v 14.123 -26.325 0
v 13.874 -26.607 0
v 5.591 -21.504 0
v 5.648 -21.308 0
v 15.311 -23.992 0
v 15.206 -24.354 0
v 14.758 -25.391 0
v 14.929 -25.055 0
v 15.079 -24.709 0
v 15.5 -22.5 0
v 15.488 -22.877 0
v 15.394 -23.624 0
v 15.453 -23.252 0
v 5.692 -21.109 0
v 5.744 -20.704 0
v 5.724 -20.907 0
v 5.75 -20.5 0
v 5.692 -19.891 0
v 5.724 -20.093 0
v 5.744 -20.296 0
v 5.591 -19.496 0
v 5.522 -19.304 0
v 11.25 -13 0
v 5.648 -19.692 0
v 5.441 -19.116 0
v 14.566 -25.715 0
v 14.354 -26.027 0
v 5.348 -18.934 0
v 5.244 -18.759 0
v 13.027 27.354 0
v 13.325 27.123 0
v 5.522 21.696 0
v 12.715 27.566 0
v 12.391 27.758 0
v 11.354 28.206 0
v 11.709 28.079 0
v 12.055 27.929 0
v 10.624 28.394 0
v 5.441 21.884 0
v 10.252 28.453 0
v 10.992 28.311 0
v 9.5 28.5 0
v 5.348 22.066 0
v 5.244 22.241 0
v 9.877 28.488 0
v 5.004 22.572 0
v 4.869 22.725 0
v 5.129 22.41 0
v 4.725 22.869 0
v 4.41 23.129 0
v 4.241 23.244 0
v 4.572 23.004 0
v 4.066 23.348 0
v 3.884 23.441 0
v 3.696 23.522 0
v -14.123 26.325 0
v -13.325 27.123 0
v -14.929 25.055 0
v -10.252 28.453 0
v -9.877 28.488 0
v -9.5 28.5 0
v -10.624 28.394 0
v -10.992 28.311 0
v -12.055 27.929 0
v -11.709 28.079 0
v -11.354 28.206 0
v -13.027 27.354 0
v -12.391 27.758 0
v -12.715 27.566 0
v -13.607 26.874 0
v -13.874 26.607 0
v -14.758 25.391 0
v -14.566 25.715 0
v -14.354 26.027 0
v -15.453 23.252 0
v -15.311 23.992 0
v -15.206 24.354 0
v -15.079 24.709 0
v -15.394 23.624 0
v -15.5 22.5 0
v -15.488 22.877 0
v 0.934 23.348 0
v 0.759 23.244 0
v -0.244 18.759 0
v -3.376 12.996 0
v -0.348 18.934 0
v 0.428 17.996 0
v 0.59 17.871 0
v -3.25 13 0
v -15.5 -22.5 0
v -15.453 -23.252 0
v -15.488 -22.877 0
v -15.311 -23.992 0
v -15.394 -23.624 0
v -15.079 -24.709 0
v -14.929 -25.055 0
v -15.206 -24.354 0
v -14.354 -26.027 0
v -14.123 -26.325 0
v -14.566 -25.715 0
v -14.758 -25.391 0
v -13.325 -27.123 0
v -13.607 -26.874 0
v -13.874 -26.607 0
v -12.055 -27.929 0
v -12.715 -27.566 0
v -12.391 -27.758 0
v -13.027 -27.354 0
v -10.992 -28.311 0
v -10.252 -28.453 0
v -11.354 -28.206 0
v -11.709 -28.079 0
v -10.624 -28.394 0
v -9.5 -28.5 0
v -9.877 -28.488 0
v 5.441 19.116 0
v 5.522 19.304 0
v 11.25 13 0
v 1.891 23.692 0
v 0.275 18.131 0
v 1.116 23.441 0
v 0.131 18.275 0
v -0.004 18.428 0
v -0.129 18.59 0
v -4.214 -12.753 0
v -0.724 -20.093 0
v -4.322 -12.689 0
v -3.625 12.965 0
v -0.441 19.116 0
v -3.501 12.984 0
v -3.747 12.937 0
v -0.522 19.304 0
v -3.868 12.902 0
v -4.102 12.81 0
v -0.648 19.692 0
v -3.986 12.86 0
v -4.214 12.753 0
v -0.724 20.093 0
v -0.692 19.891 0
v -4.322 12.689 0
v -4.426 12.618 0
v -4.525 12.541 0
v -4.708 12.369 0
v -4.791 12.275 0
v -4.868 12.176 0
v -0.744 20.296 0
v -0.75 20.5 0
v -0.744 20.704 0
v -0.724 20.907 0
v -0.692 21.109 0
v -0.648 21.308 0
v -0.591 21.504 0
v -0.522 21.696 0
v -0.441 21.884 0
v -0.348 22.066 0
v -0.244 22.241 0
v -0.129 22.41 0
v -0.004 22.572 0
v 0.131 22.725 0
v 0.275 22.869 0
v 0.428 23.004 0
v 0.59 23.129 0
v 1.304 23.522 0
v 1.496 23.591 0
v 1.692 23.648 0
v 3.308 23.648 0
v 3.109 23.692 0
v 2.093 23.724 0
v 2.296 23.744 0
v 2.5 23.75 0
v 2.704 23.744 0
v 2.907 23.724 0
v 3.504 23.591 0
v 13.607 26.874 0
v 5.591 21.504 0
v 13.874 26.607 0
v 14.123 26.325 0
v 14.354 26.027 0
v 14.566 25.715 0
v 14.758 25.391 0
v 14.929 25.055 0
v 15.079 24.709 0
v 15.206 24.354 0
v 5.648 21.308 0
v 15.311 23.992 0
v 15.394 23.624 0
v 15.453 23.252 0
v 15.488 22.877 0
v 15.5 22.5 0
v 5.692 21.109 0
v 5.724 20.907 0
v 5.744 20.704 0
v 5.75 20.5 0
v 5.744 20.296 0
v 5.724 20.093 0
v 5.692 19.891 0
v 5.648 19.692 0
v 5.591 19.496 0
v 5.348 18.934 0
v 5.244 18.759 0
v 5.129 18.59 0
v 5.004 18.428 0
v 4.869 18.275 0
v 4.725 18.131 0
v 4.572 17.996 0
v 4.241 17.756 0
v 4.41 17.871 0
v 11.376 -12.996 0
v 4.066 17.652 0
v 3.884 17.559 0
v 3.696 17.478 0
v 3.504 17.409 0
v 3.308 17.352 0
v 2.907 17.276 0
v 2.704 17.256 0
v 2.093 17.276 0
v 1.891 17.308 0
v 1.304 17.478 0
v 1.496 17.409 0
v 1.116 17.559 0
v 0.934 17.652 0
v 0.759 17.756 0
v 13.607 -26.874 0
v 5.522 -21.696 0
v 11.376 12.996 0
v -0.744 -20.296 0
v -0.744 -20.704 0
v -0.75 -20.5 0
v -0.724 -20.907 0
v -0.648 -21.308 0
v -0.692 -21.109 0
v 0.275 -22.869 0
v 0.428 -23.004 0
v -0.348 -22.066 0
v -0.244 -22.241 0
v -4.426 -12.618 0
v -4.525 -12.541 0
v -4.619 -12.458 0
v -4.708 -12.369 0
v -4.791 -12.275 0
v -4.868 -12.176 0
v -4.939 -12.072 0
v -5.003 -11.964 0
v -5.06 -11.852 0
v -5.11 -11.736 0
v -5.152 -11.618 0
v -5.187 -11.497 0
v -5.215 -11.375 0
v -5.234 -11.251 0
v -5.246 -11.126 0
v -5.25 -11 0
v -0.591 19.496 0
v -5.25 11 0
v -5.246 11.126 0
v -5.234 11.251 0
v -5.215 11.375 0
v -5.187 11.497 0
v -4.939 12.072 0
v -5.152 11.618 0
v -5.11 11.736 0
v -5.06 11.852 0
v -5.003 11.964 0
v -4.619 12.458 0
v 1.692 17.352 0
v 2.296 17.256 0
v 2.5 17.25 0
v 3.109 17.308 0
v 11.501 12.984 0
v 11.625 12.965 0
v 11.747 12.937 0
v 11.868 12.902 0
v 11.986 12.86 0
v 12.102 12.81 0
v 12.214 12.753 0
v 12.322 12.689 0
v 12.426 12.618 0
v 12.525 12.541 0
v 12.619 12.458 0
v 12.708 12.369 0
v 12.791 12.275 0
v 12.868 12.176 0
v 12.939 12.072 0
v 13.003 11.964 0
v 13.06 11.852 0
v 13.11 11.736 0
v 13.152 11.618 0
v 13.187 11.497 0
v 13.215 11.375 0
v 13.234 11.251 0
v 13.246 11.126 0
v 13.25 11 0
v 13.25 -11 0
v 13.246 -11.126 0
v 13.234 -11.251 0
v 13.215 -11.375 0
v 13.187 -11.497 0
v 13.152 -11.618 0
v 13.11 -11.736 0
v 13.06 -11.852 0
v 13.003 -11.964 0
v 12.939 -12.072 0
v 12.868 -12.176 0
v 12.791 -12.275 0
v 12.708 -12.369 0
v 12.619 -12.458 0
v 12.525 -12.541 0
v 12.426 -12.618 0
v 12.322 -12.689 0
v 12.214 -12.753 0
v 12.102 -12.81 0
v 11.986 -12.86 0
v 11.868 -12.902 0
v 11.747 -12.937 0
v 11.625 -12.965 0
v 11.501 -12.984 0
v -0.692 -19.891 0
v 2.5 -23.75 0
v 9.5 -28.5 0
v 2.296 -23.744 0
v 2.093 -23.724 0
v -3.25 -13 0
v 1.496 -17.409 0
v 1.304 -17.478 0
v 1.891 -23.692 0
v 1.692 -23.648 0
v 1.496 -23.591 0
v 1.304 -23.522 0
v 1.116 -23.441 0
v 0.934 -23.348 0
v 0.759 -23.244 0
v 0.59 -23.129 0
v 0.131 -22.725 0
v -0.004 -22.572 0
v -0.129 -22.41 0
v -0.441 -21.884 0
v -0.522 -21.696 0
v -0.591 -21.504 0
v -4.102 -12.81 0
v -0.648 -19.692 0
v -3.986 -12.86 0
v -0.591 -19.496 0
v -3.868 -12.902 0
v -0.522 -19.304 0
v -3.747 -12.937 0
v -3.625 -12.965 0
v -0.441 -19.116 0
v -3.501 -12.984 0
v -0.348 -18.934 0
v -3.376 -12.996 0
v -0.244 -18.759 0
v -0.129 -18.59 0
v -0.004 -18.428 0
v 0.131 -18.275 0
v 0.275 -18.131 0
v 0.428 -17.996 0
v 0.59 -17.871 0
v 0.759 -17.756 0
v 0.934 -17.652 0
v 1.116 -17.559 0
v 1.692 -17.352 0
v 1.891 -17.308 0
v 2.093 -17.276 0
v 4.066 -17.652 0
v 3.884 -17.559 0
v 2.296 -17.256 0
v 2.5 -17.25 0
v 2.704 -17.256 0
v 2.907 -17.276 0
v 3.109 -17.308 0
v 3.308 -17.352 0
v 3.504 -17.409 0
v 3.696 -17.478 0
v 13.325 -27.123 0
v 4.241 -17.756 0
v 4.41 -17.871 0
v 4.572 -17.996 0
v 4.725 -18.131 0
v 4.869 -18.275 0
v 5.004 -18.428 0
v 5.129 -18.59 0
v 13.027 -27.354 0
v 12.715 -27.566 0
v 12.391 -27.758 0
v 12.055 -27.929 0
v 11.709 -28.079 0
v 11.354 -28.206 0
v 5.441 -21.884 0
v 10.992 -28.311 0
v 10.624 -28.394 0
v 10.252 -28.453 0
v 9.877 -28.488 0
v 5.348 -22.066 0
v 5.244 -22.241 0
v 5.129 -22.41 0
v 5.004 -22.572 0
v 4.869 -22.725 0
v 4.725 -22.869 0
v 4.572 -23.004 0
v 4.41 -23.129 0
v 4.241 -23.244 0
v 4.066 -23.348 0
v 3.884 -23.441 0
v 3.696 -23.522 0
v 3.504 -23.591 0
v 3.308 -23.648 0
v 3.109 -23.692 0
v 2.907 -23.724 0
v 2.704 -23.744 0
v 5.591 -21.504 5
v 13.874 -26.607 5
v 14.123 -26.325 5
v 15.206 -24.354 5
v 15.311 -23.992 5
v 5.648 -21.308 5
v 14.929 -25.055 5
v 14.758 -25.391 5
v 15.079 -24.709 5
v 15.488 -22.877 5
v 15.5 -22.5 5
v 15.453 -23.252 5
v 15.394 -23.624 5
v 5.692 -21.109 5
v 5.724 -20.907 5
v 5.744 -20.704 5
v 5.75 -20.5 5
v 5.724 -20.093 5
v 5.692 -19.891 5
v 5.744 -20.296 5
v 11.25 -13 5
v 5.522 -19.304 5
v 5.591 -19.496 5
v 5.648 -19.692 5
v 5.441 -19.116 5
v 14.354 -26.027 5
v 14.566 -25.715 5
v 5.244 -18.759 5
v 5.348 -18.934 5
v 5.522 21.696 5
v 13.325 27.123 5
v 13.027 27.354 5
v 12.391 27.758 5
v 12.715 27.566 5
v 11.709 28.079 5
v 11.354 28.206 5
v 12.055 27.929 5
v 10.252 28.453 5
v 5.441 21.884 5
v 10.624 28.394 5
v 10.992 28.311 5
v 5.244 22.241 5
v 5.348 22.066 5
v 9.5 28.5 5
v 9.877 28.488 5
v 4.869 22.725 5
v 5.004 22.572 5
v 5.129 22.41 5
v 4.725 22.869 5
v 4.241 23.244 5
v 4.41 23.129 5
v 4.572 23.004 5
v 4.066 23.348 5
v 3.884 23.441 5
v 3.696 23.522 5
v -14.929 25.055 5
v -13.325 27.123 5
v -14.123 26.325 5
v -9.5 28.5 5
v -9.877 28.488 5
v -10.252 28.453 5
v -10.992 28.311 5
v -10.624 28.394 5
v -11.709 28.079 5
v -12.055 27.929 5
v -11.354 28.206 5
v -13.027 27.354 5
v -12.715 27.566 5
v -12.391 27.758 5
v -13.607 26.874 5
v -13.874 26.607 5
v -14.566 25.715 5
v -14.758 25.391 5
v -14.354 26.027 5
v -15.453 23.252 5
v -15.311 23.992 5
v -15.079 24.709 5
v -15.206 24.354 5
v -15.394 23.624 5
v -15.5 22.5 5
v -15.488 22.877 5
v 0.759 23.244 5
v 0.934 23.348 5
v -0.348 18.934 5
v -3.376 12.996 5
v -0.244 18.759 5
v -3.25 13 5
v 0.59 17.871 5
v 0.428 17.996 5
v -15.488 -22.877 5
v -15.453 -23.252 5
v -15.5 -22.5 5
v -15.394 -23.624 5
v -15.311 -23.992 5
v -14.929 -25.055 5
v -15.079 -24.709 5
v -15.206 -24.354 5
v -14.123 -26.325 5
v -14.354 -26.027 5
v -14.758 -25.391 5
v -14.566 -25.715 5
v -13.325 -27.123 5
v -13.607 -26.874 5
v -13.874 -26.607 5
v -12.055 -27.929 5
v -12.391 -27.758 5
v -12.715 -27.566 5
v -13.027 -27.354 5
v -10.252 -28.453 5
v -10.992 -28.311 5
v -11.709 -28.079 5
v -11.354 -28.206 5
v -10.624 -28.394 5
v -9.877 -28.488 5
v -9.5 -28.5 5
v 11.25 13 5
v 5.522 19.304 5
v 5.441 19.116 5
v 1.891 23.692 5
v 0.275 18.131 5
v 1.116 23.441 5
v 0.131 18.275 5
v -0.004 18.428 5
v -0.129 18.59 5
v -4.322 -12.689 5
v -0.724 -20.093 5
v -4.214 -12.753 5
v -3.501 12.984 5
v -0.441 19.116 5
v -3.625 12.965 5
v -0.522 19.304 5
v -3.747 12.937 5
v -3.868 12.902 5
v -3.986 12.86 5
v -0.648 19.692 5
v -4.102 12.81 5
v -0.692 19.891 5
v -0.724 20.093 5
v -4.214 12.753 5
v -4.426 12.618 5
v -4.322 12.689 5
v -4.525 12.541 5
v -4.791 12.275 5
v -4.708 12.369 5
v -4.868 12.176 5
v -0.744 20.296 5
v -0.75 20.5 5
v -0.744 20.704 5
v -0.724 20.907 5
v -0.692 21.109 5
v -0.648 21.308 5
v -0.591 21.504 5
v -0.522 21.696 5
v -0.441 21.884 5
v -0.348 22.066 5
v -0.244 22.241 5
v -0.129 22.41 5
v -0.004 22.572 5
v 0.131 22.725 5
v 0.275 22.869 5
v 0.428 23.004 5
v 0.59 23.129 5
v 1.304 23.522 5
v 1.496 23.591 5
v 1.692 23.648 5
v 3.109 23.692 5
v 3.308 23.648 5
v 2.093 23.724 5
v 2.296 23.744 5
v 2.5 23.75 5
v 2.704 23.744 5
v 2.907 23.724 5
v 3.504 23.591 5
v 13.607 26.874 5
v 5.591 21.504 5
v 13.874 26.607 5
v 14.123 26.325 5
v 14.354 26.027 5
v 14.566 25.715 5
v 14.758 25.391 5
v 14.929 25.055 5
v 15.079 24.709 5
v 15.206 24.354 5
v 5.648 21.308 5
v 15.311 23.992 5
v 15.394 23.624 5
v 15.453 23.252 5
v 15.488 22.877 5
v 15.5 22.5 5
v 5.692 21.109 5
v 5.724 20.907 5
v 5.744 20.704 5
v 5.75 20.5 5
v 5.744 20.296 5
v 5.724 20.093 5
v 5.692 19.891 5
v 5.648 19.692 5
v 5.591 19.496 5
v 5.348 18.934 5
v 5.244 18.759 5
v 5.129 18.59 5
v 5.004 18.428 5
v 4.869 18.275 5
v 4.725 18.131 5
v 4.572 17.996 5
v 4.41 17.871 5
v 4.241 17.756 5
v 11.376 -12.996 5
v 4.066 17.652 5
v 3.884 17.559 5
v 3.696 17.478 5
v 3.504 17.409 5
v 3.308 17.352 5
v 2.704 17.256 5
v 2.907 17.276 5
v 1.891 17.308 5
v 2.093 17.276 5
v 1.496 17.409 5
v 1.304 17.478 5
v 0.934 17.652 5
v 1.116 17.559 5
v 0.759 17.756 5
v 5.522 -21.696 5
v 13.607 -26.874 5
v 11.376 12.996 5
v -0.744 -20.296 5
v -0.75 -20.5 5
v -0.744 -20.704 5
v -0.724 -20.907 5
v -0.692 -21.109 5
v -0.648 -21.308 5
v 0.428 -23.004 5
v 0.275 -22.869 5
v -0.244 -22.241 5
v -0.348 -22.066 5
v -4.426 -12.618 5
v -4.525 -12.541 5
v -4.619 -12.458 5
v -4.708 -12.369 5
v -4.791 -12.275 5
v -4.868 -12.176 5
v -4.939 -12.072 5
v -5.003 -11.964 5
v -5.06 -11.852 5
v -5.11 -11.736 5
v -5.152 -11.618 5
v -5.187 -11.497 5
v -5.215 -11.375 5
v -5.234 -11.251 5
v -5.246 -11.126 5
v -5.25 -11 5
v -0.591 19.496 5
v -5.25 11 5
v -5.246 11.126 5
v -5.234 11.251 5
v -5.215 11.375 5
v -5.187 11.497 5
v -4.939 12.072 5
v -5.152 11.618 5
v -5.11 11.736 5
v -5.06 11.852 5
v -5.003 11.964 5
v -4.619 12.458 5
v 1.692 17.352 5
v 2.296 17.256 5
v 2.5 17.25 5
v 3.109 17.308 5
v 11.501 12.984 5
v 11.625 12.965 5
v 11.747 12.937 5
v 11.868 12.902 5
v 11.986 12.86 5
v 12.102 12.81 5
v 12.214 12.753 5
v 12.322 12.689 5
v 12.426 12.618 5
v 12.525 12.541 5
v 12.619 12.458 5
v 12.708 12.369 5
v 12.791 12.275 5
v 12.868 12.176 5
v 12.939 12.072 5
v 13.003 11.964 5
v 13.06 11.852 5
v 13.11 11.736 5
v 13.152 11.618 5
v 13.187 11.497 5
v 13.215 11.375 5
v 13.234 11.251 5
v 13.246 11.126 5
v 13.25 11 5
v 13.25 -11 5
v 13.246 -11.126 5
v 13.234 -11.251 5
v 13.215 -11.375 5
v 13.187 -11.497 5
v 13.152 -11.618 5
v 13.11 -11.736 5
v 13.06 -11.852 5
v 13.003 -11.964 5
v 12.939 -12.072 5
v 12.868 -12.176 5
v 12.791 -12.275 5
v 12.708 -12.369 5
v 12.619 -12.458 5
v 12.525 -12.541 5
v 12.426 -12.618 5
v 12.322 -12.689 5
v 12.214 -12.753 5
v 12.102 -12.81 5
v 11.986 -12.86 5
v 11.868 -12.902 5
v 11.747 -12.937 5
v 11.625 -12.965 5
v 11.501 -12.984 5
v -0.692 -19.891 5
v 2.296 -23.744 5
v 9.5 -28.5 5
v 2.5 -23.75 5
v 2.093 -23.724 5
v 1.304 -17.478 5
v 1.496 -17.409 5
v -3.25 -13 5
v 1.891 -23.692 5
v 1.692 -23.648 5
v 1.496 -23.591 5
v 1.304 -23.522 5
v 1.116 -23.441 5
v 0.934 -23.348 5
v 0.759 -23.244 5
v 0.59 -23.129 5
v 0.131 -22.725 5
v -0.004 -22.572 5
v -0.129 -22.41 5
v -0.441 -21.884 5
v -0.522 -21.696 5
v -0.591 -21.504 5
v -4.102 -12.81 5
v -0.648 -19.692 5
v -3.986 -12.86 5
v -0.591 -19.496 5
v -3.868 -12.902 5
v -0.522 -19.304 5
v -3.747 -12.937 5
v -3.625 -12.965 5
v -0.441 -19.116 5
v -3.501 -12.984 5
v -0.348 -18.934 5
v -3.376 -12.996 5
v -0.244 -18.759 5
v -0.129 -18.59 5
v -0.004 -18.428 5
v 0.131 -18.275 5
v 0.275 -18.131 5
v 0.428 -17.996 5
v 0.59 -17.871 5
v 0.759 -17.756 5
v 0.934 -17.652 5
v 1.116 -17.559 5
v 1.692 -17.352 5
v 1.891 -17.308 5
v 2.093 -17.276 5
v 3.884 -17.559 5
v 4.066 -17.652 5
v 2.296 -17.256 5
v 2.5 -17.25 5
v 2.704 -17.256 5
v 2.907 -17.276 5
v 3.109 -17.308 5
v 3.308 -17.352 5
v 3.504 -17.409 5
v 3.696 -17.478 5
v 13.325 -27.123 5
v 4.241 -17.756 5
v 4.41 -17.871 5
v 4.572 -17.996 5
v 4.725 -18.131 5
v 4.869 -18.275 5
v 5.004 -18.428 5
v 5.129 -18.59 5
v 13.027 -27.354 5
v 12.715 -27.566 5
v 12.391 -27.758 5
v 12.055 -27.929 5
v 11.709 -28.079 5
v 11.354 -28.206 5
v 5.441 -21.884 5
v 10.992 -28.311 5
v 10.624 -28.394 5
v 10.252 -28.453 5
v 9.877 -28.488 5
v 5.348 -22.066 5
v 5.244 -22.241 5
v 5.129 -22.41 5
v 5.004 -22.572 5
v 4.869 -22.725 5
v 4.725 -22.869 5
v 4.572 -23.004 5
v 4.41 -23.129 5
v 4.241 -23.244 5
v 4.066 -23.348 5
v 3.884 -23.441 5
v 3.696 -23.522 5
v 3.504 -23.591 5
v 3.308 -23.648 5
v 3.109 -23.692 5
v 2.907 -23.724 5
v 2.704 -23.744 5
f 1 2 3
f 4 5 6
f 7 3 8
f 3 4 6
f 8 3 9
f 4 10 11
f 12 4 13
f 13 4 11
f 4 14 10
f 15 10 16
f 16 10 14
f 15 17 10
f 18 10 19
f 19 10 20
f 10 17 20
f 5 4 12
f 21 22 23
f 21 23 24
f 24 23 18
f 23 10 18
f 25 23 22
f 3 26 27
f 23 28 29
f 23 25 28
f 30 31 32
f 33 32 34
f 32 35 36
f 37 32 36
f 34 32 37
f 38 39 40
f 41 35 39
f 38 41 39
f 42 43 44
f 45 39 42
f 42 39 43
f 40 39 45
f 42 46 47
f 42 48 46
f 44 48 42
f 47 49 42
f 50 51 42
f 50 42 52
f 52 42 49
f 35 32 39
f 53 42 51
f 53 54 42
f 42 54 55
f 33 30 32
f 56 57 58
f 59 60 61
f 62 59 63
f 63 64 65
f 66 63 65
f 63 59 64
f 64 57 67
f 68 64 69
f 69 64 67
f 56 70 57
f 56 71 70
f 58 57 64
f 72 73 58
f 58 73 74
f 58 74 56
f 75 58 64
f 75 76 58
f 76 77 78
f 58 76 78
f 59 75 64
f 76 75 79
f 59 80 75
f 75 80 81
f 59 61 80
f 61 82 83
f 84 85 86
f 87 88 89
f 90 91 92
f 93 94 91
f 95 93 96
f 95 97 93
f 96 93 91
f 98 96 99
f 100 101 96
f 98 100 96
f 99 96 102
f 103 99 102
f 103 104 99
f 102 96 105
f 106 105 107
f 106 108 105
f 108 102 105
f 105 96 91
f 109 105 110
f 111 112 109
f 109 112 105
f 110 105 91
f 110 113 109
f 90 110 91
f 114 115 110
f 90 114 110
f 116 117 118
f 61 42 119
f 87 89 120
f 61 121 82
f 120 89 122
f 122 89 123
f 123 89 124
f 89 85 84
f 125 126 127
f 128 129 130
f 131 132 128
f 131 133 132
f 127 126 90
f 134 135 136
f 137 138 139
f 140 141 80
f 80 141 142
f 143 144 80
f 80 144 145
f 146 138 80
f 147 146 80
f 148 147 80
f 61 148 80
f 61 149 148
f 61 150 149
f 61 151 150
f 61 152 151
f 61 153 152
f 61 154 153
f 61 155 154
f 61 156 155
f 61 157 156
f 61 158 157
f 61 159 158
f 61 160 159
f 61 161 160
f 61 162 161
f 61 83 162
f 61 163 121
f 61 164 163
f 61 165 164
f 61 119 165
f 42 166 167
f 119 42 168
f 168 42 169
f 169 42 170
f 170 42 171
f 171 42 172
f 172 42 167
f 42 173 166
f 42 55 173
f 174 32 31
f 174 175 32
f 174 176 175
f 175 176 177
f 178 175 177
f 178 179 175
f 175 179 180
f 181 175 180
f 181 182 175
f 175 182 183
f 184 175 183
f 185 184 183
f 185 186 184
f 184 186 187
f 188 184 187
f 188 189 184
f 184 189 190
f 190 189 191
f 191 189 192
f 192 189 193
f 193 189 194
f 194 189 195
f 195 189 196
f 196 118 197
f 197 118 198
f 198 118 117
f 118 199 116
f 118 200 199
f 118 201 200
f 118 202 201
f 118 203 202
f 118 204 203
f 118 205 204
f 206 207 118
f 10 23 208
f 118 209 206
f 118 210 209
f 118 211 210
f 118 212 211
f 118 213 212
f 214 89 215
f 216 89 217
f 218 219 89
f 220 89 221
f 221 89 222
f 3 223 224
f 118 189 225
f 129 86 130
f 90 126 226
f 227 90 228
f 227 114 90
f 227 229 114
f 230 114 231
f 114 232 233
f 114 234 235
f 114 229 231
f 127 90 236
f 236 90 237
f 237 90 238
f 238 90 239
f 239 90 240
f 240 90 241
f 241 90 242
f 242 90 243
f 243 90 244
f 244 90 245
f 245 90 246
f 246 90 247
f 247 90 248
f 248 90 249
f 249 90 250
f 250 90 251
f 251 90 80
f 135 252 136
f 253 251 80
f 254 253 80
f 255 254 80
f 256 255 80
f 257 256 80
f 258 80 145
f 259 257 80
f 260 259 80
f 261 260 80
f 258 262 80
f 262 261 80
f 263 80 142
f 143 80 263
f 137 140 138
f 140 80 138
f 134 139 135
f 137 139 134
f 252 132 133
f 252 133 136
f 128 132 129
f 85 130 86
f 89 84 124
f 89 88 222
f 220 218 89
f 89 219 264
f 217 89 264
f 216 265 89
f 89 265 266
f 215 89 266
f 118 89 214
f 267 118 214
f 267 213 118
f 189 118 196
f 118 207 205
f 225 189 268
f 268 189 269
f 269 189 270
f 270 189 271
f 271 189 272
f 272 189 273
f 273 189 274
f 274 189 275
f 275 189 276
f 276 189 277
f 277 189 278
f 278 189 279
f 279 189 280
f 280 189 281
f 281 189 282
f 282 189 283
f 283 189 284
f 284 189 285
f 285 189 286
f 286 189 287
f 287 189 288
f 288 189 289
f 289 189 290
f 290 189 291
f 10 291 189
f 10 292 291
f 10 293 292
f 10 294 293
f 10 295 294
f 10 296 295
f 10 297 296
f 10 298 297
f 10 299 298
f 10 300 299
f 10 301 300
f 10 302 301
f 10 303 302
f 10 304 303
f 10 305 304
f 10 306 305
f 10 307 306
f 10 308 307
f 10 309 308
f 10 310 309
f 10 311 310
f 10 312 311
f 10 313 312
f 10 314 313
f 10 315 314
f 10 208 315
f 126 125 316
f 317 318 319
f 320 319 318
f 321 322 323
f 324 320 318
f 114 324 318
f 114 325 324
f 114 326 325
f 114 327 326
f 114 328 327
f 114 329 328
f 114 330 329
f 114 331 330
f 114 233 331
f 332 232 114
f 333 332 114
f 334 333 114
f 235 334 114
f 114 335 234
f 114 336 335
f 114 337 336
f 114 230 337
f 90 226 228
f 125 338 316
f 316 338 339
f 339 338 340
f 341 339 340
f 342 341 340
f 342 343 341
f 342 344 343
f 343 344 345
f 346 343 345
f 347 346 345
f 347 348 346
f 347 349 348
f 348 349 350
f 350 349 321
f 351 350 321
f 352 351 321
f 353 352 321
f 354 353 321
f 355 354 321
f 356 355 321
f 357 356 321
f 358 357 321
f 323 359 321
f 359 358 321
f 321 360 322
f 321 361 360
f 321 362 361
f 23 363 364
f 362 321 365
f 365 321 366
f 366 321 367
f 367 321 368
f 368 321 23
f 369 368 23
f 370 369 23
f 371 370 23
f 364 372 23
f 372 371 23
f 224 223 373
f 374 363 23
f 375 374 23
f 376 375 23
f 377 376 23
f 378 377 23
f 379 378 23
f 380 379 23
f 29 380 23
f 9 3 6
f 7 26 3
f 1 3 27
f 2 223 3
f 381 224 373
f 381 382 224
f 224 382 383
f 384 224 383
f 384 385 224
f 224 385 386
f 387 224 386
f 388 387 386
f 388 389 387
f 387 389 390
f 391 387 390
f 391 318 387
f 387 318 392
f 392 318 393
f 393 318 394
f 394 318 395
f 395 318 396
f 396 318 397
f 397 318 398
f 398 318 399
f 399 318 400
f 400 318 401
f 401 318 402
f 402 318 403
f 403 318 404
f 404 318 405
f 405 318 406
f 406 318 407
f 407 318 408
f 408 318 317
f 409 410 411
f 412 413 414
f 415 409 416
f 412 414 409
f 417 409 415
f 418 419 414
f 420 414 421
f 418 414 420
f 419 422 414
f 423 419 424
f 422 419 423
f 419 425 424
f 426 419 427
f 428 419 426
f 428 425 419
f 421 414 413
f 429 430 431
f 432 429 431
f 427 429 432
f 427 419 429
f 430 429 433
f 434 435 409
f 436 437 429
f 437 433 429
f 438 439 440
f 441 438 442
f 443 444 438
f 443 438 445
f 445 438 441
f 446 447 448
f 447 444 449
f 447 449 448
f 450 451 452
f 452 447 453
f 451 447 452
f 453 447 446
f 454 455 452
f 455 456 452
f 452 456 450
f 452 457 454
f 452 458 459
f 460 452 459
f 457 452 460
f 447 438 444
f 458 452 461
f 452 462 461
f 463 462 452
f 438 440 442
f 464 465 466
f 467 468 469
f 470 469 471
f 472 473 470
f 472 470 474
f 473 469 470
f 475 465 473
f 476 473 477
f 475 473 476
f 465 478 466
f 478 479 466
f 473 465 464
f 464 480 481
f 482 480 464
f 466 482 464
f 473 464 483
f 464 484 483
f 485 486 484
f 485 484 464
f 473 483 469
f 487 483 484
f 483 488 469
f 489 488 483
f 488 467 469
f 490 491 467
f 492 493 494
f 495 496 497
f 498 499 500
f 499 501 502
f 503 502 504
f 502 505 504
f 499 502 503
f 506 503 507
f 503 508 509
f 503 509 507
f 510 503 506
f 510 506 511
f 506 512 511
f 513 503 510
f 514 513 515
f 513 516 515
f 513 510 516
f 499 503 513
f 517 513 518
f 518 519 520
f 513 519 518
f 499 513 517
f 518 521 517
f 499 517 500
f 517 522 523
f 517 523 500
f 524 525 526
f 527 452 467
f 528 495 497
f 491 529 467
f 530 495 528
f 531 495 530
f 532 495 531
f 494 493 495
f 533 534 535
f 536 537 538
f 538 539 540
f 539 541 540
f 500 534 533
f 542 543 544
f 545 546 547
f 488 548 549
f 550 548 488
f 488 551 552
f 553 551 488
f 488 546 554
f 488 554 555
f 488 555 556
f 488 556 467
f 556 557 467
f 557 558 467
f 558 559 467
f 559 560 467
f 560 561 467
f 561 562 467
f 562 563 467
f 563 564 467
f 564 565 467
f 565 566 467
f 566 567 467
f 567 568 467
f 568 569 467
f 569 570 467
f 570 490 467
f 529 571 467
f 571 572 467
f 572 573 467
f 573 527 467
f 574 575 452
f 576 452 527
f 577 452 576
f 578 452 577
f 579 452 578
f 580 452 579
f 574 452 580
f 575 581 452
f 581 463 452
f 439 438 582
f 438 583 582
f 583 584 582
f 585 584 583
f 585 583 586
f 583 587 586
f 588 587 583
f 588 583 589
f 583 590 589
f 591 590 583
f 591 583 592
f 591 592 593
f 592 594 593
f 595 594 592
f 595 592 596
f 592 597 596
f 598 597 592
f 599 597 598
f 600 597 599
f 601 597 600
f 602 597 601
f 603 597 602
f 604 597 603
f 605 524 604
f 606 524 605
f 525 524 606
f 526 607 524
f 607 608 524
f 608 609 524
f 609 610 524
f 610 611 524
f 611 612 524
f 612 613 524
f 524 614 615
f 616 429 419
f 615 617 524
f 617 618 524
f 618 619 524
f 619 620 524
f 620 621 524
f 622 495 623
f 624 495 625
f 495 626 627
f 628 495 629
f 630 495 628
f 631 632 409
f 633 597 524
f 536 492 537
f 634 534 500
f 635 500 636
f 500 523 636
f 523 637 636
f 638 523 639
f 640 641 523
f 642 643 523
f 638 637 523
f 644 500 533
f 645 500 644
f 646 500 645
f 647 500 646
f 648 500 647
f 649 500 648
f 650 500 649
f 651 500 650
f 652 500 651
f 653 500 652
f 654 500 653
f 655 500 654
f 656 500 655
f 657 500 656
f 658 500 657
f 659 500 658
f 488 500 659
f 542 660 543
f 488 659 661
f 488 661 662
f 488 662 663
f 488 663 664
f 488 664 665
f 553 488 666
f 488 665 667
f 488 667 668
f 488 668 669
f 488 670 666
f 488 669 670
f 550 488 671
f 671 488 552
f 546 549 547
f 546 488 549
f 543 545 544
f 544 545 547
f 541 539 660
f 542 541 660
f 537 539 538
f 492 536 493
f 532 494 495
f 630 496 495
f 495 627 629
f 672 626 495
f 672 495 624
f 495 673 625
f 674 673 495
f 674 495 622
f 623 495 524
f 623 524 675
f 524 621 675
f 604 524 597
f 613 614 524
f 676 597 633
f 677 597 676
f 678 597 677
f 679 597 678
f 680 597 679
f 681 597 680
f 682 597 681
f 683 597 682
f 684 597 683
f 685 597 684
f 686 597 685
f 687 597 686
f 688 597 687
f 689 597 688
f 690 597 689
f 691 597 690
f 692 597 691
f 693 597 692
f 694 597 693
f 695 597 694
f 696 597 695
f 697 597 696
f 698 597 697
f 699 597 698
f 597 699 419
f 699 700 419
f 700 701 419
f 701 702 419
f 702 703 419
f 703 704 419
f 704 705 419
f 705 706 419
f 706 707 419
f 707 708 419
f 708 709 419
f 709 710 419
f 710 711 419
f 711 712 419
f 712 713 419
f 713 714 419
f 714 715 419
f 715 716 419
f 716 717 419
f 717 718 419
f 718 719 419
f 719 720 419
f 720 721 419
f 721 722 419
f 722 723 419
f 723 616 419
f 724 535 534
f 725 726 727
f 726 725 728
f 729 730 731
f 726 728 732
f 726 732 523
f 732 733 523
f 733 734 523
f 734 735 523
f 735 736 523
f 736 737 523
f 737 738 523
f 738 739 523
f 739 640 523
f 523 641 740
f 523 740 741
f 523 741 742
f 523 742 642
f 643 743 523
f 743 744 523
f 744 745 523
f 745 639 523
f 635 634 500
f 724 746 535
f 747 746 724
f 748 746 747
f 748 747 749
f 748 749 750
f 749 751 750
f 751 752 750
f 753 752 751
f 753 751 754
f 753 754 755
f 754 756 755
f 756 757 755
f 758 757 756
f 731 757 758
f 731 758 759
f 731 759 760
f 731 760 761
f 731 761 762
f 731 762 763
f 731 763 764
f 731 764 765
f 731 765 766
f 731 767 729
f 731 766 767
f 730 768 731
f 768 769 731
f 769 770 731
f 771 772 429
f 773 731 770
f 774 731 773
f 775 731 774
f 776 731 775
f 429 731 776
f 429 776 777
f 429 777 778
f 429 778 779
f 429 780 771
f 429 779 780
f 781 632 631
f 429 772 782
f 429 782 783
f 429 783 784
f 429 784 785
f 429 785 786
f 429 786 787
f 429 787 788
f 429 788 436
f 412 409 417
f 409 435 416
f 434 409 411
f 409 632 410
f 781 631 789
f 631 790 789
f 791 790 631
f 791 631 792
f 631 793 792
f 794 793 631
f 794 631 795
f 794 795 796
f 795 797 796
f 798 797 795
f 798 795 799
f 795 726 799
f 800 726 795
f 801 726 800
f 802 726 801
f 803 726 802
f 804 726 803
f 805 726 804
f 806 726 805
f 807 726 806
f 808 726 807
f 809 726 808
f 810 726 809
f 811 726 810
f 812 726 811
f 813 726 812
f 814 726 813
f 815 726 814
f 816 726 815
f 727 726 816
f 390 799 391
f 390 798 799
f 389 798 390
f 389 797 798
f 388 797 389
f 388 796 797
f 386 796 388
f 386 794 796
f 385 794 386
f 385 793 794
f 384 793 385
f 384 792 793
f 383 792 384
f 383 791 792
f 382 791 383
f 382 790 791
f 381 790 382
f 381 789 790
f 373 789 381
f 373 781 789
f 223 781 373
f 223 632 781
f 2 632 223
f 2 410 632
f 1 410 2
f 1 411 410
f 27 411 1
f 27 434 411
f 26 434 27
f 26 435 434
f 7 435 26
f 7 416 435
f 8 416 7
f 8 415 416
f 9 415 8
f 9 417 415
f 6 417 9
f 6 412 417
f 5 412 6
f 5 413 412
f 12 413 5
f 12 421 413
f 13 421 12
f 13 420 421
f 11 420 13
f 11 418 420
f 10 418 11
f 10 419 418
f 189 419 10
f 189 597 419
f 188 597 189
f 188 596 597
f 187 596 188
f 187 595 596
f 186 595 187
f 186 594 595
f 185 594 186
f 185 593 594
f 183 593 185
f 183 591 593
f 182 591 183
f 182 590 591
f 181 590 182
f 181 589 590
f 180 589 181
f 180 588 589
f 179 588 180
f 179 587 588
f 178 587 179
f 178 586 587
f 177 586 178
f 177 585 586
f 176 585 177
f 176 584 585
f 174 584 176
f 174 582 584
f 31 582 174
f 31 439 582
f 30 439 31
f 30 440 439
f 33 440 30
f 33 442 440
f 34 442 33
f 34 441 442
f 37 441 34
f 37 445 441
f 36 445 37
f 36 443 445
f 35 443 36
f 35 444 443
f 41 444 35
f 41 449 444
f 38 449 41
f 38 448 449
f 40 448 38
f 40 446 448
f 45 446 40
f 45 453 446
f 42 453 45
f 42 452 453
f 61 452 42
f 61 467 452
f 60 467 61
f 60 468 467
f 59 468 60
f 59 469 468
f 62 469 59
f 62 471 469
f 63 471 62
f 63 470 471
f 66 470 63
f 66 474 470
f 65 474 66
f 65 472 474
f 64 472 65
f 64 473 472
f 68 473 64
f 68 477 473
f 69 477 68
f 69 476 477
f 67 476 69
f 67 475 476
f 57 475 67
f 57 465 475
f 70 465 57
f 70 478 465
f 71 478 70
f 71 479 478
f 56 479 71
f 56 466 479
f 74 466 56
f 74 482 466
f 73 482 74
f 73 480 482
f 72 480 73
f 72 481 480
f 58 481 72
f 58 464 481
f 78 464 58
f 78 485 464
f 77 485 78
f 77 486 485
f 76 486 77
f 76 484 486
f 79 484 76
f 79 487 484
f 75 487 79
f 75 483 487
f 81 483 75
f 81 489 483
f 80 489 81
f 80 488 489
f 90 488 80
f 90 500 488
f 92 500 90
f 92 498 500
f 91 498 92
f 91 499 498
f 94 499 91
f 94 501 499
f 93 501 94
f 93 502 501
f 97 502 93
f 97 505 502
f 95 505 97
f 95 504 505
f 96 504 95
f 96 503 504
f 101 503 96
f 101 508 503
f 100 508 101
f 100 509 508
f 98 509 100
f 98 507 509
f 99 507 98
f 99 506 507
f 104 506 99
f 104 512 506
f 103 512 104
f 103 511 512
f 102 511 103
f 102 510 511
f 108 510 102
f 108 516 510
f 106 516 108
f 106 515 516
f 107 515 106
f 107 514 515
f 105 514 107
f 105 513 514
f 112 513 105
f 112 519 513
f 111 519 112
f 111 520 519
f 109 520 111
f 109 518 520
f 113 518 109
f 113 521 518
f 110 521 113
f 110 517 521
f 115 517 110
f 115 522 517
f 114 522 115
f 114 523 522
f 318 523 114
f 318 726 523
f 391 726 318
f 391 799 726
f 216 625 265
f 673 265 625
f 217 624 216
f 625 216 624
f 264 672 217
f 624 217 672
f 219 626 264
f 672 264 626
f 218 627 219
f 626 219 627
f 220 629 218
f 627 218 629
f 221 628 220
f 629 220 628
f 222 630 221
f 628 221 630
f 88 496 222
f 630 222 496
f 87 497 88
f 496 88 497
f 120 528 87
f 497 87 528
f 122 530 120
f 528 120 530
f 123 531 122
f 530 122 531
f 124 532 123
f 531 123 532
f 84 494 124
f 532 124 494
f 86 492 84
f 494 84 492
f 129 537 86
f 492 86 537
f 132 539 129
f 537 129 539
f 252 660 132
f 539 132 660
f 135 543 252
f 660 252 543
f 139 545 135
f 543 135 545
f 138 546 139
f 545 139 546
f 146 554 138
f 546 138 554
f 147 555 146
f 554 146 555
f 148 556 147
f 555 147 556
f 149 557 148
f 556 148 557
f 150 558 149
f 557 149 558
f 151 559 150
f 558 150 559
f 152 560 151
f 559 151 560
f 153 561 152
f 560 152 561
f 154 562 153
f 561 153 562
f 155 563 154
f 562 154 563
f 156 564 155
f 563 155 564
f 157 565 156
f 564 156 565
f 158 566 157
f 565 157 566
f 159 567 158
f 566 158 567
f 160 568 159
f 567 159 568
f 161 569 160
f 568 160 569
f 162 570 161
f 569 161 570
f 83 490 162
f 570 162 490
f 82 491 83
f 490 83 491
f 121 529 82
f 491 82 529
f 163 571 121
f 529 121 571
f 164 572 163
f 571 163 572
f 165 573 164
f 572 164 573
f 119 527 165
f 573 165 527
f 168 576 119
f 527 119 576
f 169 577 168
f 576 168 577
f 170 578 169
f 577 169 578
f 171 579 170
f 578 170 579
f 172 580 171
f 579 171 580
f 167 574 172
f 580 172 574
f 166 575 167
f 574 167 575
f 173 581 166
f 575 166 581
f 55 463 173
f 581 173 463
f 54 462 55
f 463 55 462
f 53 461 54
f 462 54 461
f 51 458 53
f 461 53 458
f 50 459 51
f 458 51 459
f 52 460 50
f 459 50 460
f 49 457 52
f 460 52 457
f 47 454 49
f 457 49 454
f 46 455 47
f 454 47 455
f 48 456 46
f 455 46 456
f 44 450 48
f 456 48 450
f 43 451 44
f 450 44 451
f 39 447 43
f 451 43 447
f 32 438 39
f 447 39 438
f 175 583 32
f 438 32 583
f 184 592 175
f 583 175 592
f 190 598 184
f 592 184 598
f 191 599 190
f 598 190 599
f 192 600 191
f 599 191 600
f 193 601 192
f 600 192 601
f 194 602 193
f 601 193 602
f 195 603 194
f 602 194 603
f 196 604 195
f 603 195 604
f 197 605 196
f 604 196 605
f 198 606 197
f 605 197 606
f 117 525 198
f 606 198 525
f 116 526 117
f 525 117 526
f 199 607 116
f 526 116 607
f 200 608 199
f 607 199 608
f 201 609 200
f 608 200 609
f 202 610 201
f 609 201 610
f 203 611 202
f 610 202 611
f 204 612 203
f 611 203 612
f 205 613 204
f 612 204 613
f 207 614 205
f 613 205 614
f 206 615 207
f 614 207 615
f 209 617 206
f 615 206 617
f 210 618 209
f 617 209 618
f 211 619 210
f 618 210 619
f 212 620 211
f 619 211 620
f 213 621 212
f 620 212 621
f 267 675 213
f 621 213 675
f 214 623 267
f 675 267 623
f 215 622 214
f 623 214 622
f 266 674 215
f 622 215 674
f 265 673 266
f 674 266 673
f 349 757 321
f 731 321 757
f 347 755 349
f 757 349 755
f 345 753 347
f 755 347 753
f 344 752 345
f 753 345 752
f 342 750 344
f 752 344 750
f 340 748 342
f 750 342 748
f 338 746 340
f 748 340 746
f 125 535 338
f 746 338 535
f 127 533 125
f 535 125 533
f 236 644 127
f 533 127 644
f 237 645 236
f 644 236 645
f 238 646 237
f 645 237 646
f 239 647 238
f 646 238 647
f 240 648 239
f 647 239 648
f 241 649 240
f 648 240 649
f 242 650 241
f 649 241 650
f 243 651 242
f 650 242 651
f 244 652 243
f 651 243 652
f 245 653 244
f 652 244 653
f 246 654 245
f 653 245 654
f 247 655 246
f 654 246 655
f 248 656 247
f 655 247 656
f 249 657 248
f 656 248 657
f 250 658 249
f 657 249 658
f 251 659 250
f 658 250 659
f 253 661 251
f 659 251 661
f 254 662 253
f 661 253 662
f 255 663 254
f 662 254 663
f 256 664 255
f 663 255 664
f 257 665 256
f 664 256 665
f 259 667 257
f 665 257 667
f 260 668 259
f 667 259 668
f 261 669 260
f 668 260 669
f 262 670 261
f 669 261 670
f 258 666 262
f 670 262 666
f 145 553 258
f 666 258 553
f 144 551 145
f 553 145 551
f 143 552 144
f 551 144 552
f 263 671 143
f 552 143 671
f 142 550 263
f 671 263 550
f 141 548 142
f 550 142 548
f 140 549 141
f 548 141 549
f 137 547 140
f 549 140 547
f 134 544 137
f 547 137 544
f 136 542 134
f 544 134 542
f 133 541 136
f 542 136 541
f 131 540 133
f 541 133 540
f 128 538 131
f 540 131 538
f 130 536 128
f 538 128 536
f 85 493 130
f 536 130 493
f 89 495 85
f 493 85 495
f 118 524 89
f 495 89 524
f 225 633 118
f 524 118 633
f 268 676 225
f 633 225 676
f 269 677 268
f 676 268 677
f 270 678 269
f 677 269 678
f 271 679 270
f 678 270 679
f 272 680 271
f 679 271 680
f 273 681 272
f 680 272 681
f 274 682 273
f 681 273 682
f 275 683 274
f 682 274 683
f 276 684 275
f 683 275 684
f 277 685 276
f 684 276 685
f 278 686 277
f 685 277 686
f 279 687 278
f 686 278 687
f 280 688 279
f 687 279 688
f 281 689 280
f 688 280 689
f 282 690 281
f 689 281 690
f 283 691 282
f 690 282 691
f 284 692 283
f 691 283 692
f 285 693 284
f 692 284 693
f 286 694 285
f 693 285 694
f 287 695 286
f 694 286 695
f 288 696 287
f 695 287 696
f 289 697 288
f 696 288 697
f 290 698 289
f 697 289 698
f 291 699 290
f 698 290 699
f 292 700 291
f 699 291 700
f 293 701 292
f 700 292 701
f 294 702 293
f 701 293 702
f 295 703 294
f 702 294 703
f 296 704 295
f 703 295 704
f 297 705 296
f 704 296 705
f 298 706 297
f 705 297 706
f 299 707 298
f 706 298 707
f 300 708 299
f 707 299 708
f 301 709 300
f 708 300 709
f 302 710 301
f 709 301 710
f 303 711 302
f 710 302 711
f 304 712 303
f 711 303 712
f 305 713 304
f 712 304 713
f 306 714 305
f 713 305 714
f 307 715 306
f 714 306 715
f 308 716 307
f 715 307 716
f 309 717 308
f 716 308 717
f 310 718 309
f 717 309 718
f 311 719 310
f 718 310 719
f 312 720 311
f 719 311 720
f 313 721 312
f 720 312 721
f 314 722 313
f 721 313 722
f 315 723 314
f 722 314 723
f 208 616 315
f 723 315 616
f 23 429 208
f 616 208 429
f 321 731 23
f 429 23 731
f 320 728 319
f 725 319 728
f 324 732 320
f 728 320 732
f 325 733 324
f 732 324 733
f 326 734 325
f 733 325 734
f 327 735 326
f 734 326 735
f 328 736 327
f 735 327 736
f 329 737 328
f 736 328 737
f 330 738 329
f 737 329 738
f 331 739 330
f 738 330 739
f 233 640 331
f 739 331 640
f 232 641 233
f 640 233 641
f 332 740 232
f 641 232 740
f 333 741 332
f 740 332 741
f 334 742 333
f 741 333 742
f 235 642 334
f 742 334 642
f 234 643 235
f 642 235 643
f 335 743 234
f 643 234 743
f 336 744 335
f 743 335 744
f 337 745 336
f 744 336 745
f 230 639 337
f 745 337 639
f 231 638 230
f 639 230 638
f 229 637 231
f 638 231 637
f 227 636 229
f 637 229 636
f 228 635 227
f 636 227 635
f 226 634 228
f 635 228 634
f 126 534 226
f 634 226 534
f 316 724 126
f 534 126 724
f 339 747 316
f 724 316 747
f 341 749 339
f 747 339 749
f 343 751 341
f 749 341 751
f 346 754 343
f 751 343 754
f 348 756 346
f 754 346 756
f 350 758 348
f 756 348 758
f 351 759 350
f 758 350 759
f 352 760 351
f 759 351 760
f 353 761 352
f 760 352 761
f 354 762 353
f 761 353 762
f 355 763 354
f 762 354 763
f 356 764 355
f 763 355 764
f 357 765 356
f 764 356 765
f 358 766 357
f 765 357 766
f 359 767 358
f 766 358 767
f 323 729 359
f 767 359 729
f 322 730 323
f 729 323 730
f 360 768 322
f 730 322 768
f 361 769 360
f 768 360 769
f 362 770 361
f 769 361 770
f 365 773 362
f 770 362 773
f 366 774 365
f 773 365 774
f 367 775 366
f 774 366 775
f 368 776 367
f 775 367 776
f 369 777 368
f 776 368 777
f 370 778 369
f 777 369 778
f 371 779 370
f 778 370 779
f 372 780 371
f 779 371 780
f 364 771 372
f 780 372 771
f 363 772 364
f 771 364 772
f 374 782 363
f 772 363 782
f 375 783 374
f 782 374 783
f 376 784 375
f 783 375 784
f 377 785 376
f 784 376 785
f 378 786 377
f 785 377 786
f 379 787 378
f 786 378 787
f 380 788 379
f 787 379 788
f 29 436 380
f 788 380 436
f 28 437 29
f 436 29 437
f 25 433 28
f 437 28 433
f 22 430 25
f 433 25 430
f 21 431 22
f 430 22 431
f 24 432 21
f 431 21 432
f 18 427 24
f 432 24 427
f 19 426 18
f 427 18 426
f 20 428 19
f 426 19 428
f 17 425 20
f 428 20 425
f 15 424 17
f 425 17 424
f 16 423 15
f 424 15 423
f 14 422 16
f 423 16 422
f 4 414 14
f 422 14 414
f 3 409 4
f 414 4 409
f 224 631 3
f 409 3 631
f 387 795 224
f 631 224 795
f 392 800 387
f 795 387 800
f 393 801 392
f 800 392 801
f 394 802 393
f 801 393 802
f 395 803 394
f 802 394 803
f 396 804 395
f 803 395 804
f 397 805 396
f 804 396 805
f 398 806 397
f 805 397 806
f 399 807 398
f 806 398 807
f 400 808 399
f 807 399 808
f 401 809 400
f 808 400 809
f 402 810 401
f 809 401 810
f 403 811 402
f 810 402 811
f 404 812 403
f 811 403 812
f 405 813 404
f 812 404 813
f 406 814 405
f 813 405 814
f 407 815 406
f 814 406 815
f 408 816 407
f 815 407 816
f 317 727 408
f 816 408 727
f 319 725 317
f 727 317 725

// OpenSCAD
/********************************************************
 * Door Strike Spacer - vsergeev
 * https://github.com/vsergeev/3d-door-strike-spacer
 * CC-BY-4.0
 *
 * Release Notes
 *  * v1.0 - 06/20/2023
 *      * Initial release.
 ********************************************************/

/* [Basic] */

// in mm
spacer_z_thickness = 5;

/* [Advanced] */

// in mm
spacer_x_width = 31;

// in mm
spacer_y_height = 57;

// in mm
spacer_xy_radius = 6;

// in mm
spacer_screw_xy_diameter = 6.5;

// in mm
spacer_screw_y_spacing = 41;

// in mm
spacer_screw_x_offset = 2.5;

// in mm
spacer_latch_x_width = 18.5;

// in mm
spacer_latch_y_height = 26;

// in mm
spacer_latch_x_offset = 4;

// in mm
spacer_latch_xy_radius = 2;

/* [Hidden] */

$fn = 100;

/******************************************************************************/
/* 2D Profiles */
/******************************************************************************/

module profile_spacer() {
    difference() {
        /* Spacer Body */
        offset(r=spacer_xy_radius)
            offset(delta=-spacer_xy_radius)
                square([spacer_x_width, spacer_y_height], center=true);

        /* Screw Holes */
        translate([spacer_screw_x_offset, spacer_screw_y_spacing / 2])
            circle(d=spacer_screw_xy_diameter);
        translate([spacer_screw_x_offset, -spacer_screw_y_spacing / 2])
            circle(d=spacer_screw_xy_diameter);

        /* Latch Opening */
        translate([spacer_latch_x_offset, 0])
            offset(r=spacer_latch_xy_radius)
                offset(delta=-spacer_latch_xy_radius)
                    square([spacer_latch_x_width, spacer_latch_y_height], center=true);
    }
}

/******************************************************************************/
/* 3D Extrusions */
/******************************************************************************/

module spacer() {
    linear_extrude(spacer_z_thickness)
        profile_spacer();
}

/******************************************************************************/
/* Top Level */
/******************************************************************************/

spacer();
